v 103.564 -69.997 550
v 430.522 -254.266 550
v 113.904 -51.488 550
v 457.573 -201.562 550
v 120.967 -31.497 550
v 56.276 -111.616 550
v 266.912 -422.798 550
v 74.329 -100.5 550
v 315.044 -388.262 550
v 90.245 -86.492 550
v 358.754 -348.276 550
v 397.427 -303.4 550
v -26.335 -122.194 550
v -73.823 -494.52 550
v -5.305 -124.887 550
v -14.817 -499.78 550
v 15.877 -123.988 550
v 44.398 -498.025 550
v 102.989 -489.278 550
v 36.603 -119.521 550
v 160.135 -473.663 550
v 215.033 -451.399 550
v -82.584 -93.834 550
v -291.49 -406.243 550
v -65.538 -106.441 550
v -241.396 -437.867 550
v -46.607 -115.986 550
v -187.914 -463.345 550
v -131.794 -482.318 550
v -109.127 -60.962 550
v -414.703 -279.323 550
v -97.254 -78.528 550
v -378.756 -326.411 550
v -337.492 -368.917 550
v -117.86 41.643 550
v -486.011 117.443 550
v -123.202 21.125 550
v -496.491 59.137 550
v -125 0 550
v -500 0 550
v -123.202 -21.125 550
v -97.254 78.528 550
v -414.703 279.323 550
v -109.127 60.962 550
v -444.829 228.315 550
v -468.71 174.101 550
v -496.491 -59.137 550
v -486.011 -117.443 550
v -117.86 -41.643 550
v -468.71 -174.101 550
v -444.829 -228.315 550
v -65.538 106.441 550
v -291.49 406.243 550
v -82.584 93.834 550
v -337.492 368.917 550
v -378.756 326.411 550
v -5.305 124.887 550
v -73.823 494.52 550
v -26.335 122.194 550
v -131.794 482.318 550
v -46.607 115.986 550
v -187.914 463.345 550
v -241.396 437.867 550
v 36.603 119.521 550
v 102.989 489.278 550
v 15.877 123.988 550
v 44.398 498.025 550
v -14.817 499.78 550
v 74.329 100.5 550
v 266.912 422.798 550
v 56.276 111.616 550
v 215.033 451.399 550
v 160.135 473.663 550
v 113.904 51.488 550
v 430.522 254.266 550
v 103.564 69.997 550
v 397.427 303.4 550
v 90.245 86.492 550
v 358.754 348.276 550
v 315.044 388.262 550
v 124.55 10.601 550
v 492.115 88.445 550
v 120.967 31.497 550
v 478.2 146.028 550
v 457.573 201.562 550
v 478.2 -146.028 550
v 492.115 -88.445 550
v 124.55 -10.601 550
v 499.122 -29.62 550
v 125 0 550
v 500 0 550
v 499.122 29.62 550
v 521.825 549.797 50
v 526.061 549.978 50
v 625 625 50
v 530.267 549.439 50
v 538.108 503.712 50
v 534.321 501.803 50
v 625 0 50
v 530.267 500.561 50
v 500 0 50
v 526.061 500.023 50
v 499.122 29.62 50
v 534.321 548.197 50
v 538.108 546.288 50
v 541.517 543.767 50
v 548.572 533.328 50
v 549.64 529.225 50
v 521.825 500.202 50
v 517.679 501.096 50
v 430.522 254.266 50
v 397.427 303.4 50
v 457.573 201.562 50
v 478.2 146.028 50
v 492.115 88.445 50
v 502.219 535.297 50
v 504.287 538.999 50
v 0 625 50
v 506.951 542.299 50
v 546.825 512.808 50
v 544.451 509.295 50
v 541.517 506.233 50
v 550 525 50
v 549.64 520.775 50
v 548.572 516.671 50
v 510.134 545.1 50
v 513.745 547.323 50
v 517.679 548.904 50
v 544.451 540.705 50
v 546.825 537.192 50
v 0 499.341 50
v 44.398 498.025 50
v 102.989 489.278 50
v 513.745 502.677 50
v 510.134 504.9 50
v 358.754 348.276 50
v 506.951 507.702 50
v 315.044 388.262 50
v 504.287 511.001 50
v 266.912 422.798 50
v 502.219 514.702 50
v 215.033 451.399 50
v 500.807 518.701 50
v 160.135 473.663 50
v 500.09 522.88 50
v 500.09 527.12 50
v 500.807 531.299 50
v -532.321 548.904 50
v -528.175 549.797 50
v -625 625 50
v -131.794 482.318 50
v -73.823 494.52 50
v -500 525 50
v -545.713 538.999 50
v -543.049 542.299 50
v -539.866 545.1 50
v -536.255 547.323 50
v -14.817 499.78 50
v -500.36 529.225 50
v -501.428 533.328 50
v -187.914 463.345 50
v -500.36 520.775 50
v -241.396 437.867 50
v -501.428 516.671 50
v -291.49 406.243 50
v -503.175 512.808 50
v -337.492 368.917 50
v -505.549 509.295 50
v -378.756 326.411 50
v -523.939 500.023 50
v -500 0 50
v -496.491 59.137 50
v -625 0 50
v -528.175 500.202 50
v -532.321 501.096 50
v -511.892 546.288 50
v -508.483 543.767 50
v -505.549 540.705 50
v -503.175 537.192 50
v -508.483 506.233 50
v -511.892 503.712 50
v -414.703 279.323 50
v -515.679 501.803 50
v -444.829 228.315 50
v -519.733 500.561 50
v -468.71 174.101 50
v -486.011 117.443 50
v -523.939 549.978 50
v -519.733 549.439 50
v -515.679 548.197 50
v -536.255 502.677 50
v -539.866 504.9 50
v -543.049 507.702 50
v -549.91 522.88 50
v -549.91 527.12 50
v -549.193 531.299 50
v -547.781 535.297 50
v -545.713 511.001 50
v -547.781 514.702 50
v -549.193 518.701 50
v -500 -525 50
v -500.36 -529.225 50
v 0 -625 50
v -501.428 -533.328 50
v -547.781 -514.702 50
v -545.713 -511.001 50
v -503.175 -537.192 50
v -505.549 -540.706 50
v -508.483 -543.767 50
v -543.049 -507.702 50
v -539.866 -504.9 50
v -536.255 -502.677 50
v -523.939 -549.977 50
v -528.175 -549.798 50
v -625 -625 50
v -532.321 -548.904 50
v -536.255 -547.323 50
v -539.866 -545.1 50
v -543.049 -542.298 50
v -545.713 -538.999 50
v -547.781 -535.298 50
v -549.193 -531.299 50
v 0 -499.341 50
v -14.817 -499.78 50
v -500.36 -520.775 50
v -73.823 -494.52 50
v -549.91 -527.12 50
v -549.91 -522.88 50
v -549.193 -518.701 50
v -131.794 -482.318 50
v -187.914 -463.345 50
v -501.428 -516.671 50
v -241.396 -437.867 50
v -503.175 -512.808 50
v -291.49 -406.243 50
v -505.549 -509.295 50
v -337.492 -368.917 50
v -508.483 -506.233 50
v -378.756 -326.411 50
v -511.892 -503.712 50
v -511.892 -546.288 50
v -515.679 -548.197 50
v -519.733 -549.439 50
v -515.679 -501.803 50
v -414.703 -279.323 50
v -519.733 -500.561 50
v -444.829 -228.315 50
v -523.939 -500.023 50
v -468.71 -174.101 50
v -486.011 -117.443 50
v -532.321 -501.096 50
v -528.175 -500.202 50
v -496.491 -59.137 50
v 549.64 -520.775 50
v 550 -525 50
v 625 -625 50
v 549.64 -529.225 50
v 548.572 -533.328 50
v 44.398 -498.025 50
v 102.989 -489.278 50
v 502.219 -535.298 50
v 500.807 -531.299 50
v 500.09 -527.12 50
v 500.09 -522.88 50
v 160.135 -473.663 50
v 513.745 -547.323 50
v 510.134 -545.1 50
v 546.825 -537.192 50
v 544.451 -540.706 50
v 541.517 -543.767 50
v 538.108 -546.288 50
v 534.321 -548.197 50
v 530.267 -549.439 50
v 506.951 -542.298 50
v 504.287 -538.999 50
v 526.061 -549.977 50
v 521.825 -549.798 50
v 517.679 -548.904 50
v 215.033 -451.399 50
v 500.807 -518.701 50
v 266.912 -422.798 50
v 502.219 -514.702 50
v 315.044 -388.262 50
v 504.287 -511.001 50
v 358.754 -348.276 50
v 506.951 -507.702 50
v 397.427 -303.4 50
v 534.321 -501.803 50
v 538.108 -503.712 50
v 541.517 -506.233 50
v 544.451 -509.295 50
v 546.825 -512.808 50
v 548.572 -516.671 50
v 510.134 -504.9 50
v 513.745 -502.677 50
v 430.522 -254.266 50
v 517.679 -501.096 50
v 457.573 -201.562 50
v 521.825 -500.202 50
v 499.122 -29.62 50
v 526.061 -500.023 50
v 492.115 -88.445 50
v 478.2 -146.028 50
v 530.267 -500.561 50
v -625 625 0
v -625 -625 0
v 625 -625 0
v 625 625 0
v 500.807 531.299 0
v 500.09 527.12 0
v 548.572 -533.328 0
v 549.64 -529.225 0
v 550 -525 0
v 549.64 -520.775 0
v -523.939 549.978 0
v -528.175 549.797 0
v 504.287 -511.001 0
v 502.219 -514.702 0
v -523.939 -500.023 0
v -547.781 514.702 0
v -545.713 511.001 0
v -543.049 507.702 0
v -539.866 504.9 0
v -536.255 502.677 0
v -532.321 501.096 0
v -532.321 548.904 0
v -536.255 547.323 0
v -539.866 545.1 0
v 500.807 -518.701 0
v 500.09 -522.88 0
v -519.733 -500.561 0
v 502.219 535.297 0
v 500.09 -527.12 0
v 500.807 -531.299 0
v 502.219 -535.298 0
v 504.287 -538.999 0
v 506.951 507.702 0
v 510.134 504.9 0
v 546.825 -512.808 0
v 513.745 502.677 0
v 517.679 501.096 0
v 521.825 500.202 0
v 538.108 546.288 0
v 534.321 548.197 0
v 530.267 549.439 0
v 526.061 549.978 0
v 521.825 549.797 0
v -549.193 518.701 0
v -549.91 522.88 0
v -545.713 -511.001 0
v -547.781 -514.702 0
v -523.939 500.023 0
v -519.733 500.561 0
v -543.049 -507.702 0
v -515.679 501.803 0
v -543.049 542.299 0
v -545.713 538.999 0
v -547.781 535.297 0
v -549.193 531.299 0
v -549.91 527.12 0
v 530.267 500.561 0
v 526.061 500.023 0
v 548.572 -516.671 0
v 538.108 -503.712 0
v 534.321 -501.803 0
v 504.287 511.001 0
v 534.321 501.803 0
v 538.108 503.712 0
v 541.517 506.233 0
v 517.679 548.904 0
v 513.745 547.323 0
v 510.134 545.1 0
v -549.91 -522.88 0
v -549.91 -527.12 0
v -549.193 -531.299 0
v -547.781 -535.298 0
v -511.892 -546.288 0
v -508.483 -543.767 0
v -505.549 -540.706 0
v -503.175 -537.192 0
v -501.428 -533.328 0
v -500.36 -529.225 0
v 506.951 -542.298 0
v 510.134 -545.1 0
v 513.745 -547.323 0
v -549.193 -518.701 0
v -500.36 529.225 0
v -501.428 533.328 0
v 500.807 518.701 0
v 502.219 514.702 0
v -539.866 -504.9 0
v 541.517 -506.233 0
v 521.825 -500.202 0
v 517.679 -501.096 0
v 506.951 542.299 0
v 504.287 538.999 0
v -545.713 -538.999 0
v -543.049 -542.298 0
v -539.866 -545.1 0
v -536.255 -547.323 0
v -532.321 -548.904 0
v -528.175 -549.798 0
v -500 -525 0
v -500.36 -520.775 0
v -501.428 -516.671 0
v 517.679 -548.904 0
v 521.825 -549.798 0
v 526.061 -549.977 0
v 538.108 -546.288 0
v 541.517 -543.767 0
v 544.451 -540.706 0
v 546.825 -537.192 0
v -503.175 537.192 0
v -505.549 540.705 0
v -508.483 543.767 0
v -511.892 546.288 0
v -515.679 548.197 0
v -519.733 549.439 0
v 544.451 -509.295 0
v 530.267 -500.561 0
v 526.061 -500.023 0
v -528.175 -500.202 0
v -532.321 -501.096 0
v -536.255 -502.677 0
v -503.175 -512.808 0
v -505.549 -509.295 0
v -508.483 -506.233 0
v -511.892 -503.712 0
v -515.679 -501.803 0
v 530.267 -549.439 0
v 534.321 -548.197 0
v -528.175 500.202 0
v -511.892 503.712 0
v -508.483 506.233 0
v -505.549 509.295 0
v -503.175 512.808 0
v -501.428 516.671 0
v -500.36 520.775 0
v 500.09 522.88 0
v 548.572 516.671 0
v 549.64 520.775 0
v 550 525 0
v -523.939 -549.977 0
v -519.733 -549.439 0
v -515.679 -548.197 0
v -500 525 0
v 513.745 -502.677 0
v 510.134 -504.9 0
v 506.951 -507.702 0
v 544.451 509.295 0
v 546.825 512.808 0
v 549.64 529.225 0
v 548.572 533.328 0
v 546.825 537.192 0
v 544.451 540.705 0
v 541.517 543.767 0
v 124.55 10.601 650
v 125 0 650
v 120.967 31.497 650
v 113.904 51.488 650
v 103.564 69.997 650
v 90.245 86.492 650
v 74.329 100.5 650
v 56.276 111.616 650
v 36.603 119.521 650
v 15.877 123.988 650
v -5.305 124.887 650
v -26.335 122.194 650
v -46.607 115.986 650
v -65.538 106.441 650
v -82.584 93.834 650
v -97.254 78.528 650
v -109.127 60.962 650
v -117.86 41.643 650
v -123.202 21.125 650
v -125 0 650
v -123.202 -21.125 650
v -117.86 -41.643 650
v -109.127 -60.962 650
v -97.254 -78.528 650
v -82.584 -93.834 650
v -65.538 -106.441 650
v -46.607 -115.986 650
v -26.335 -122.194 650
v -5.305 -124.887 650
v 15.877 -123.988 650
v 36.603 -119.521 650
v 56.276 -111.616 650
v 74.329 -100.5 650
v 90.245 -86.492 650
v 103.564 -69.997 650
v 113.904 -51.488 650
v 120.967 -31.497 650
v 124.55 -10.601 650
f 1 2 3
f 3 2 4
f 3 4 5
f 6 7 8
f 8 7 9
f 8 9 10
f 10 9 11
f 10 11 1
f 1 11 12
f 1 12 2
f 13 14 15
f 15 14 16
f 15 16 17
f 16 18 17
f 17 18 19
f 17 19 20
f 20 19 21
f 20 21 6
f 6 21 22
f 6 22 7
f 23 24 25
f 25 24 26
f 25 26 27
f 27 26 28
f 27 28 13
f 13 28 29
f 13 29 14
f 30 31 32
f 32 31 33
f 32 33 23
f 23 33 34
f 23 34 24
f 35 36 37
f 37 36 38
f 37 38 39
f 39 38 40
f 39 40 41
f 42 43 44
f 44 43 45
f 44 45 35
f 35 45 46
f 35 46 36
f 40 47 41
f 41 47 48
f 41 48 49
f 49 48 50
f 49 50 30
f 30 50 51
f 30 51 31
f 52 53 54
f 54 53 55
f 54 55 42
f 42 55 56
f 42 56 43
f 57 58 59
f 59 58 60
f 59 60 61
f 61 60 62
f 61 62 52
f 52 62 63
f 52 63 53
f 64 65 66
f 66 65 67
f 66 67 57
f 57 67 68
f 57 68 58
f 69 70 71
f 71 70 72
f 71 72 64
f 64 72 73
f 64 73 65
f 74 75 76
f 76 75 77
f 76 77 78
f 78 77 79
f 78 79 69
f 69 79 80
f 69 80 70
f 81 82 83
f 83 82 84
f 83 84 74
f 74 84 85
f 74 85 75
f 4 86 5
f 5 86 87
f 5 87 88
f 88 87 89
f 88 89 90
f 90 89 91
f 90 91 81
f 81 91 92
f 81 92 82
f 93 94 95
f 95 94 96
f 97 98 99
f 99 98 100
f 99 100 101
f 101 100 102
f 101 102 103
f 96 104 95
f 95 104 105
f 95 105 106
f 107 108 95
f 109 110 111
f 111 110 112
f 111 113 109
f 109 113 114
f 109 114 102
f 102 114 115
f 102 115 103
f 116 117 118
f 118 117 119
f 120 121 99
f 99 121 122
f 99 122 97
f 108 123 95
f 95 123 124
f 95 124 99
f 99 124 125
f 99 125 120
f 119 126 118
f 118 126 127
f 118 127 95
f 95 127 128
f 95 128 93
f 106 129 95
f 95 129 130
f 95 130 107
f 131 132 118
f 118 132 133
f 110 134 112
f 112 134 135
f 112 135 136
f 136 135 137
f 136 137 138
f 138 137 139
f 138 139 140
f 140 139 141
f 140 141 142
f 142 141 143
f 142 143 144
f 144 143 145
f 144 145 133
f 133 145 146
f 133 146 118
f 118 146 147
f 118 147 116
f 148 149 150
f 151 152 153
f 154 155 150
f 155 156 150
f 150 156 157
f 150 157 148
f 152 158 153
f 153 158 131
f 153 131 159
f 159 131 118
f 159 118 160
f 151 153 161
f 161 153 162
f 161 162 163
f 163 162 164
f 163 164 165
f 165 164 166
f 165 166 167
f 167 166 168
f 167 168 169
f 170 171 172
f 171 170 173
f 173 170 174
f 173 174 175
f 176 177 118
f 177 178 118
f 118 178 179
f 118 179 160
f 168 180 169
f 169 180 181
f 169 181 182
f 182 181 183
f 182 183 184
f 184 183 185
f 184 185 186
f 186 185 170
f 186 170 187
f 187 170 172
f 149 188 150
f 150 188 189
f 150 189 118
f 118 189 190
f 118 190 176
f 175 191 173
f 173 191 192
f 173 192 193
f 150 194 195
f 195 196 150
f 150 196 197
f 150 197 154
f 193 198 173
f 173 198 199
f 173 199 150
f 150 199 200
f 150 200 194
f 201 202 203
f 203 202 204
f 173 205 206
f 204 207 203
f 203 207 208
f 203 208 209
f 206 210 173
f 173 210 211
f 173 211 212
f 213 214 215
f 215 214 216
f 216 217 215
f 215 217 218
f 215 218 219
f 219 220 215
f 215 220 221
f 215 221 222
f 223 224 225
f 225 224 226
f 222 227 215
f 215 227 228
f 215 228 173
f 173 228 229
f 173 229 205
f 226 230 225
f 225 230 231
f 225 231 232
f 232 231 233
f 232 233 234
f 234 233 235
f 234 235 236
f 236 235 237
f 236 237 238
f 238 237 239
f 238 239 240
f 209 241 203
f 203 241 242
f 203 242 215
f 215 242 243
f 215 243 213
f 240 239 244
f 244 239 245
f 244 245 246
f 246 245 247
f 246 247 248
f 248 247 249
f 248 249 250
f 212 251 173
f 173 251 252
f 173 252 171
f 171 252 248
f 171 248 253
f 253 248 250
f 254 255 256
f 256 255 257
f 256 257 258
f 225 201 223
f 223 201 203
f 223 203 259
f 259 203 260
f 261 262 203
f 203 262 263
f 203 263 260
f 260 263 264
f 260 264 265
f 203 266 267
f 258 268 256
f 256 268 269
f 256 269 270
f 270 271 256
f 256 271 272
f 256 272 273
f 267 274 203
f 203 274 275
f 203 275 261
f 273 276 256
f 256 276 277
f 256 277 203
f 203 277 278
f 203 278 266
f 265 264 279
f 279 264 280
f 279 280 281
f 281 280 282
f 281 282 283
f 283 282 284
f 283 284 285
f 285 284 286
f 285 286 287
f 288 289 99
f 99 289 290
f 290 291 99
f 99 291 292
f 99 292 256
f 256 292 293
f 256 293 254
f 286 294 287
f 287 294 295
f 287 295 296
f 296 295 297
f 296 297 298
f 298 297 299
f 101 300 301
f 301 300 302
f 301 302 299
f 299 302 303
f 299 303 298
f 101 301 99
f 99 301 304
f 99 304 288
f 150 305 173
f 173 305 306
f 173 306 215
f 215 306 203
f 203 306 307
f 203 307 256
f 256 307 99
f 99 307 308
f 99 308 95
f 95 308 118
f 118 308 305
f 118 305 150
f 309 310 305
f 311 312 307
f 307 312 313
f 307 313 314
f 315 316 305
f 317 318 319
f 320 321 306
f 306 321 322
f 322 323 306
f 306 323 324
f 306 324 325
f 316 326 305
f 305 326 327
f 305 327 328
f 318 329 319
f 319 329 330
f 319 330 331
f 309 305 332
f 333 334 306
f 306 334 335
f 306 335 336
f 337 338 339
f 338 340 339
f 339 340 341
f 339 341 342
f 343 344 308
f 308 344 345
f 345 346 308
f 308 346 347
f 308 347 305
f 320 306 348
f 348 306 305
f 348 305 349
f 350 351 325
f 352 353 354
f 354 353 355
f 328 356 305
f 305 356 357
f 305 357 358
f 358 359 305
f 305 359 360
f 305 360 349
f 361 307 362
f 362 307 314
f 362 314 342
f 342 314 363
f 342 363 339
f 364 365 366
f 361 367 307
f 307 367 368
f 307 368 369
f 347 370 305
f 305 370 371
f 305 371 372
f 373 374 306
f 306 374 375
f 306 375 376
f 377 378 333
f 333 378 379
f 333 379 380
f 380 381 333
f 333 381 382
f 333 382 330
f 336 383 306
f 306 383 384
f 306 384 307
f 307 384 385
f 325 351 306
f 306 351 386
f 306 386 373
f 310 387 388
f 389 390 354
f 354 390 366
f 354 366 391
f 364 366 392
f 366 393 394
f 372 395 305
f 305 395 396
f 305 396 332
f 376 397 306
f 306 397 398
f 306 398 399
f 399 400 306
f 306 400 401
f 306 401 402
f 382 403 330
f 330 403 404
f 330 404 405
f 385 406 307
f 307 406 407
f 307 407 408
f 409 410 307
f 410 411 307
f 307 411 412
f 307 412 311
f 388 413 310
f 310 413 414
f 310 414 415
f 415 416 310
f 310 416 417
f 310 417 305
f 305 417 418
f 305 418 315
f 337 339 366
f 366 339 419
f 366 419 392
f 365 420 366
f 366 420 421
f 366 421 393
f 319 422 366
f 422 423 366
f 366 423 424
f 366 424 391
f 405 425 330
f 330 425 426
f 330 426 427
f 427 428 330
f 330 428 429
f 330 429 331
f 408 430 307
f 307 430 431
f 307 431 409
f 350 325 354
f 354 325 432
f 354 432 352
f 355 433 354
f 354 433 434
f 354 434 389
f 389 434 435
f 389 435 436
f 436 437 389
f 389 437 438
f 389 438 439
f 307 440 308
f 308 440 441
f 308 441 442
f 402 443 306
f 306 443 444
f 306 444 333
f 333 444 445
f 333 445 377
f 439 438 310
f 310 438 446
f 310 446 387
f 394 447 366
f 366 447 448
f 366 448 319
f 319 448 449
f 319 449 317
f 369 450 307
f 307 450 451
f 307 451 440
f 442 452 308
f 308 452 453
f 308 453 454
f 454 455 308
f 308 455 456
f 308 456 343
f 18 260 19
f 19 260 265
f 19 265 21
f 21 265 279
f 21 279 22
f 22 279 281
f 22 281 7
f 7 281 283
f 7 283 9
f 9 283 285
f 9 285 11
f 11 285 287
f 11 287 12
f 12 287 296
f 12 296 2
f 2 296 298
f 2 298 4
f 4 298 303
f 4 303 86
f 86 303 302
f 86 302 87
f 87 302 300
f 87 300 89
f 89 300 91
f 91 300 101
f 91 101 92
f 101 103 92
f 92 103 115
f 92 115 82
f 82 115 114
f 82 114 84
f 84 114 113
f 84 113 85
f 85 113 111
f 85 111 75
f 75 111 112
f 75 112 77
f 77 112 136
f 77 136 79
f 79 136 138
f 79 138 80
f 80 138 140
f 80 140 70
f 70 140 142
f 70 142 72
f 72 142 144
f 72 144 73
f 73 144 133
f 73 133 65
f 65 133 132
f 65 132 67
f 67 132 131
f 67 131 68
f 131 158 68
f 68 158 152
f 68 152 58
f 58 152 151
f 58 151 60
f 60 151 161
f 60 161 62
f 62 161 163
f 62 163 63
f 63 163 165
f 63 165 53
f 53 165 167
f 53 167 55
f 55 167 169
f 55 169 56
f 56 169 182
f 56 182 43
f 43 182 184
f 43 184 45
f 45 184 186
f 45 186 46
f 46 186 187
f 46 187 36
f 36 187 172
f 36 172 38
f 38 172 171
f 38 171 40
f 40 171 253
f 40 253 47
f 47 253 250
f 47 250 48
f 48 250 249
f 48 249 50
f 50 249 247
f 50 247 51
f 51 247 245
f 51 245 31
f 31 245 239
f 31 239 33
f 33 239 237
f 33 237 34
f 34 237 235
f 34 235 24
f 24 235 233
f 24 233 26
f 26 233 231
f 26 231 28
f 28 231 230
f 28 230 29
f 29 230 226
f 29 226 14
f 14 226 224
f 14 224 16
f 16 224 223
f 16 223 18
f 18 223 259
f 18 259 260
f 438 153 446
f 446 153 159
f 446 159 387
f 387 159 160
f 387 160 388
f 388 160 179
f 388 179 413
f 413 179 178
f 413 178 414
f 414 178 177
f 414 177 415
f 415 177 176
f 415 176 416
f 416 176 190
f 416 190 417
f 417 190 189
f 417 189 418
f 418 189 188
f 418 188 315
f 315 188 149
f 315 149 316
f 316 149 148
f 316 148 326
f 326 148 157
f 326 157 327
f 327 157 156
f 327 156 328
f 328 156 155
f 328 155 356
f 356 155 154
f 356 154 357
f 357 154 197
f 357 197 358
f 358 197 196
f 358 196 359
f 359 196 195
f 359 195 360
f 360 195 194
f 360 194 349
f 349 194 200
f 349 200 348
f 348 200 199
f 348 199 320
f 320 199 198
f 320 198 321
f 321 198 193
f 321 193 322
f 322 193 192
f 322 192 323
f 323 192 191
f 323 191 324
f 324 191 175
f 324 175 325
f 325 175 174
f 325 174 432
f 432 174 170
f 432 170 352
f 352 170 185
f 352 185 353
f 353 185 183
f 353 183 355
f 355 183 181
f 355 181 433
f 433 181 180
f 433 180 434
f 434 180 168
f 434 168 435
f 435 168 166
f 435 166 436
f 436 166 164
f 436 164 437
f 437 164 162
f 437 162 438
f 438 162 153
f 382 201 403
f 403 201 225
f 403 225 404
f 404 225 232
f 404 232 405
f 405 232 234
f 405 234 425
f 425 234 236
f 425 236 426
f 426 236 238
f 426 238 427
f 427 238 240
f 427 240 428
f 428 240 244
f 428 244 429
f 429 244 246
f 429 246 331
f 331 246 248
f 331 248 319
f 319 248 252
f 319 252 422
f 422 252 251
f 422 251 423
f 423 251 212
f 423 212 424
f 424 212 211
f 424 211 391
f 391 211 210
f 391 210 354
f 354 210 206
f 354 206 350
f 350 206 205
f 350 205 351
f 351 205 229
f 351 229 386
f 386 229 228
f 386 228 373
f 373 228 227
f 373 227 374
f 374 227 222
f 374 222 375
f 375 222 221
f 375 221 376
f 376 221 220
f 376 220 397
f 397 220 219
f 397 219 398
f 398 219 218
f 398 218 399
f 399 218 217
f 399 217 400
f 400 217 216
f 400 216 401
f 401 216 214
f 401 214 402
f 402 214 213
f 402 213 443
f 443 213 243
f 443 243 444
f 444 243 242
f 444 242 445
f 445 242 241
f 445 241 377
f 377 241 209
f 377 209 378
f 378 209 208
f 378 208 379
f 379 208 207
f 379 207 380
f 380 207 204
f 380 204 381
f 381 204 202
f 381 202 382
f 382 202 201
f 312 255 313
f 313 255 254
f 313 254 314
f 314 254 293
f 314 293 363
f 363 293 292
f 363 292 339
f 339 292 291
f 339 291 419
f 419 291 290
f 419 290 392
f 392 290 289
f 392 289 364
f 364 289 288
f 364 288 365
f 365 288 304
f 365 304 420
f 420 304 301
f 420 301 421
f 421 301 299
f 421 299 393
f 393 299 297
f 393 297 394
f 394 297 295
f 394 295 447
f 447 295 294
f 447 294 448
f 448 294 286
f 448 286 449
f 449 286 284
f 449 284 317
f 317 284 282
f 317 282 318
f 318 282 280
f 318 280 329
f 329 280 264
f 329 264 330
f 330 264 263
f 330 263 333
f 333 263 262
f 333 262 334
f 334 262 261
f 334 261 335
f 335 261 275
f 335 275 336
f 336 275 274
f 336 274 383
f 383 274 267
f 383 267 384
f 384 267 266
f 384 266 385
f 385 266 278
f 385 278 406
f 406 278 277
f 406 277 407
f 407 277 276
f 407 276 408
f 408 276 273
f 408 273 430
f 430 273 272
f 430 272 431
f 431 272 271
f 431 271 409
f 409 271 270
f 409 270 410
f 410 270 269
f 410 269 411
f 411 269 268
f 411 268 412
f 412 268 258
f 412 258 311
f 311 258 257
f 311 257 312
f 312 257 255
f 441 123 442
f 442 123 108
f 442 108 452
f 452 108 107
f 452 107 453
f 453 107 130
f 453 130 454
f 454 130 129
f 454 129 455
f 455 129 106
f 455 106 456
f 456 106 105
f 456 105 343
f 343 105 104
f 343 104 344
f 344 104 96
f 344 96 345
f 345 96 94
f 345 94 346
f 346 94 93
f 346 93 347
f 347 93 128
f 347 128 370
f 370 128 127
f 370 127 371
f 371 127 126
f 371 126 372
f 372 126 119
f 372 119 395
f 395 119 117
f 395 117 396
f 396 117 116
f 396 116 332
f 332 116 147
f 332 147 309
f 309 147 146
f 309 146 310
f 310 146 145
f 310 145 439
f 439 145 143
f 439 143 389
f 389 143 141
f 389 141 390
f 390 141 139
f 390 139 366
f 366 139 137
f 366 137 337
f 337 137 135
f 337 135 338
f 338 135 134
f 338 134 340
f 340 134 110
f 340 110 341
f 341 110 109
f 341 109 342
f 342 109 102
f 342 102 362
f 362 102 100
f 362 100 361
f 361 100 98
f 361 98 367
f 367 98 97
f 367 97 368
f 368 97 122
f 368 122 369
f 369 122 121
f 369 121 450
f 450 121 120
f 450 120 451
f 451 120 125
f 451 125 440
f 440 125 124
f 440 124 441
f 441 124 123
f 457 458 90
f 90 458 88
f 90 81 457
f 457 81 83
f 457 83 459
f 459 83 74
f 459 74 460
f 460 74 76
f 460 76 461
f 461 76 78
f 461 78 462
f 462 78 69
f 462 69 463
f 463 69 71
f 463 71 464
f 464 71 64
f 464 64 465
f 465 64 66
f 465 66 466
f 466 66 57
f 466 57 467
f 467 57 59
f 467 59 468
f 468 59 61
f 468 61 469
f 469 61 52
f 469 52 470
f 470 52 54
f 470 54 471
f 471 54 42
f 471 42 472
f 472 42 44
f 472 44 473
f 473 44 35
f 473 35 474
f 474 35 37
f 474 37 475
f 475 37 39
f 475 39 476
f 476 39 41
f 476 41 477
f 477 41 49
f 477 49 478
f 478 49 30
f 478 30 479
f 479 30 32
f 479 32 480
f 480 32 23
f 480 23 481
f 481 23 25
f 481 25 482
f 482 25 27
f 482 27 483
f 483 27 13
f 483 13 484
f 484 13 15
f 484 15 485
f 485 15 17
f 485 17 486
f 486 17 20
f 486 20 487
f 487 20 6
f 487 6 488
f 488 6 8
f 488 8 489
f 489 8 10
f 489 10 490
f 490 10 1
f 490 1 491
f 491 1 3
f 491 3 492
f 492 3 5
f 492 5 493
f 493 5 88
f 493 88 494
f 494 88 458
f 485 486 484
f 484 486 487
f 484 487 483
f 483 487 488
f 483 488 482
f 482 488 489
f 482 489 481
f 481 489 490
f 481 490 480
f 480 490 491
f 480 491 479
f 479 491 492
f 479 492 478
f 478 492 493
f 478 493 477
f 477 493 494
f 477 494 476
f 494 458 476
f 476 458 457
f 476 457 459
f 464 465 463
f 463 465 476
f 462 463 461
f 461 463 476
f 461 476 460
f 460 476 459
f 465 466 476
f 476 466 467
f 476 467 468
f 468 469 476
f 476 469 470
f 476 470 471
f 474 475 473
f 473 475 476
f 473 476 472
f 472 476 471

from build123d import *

# Parameters (mm, degrees)
SKETCH2_W           = 1250
SKETCH2_H           = 1250
BOSS_EXTRUDE1_DEPTH = 50
SKETCH3_R           = 500
BOSS_EXTRUDE2_DEPTH = 500
SKETCH4_R           = 25
CUT_EXTRUDE1_DEPTH  = 1016.504800579
SKETCH5_R           = 125
BOSS_EXTRUDE3_DEPTH = 100


with BuildPart() as part:
    # Sketch2 → Boss-Extrude1 (new body)
    with BuildSketch(Plane.XY):
        Rectangle(SKETCH2_W, SKETCH2_H)
    extrude(amount=BOSS_EXTRUDE1_DEPTH)

    # Sketch3 → Boss-Extrude2 (add)
    with BuildSketch(Plane.XY.offset(50)):
        Circle(SKETCH3_R)
    extrude(amount=BOSS_EXTRUDE2_DEPTH)

    # Sketch4 → Cut-Extrude1 (cut, through all)
    with BuildSketch(Plane.XY.offset(50)):
        with Locations((-525, 525)):
            Circle(SKETCH4_R)
        with Locations((-525, -525)):
            Circle(SKETCH4_R)
        with Locations((525, -525)):
            Circle(SKETCH4_R)
        with Locations((525, 525)):
            Circle(SKETCH4_R)
    extrude(amount=-CUT_EXTRUDE1_DEPTH, mode=Mode.SUBTRACT)

    # Sketch5 → Boss-Extrude3 (add)
    with BuildSketch(Plane.XY.offset(550)):
        Circle(SKETCH5_R)
    extrude(amount=BOSS_EXTRUDE3_DEPTH)


solid = part.part
